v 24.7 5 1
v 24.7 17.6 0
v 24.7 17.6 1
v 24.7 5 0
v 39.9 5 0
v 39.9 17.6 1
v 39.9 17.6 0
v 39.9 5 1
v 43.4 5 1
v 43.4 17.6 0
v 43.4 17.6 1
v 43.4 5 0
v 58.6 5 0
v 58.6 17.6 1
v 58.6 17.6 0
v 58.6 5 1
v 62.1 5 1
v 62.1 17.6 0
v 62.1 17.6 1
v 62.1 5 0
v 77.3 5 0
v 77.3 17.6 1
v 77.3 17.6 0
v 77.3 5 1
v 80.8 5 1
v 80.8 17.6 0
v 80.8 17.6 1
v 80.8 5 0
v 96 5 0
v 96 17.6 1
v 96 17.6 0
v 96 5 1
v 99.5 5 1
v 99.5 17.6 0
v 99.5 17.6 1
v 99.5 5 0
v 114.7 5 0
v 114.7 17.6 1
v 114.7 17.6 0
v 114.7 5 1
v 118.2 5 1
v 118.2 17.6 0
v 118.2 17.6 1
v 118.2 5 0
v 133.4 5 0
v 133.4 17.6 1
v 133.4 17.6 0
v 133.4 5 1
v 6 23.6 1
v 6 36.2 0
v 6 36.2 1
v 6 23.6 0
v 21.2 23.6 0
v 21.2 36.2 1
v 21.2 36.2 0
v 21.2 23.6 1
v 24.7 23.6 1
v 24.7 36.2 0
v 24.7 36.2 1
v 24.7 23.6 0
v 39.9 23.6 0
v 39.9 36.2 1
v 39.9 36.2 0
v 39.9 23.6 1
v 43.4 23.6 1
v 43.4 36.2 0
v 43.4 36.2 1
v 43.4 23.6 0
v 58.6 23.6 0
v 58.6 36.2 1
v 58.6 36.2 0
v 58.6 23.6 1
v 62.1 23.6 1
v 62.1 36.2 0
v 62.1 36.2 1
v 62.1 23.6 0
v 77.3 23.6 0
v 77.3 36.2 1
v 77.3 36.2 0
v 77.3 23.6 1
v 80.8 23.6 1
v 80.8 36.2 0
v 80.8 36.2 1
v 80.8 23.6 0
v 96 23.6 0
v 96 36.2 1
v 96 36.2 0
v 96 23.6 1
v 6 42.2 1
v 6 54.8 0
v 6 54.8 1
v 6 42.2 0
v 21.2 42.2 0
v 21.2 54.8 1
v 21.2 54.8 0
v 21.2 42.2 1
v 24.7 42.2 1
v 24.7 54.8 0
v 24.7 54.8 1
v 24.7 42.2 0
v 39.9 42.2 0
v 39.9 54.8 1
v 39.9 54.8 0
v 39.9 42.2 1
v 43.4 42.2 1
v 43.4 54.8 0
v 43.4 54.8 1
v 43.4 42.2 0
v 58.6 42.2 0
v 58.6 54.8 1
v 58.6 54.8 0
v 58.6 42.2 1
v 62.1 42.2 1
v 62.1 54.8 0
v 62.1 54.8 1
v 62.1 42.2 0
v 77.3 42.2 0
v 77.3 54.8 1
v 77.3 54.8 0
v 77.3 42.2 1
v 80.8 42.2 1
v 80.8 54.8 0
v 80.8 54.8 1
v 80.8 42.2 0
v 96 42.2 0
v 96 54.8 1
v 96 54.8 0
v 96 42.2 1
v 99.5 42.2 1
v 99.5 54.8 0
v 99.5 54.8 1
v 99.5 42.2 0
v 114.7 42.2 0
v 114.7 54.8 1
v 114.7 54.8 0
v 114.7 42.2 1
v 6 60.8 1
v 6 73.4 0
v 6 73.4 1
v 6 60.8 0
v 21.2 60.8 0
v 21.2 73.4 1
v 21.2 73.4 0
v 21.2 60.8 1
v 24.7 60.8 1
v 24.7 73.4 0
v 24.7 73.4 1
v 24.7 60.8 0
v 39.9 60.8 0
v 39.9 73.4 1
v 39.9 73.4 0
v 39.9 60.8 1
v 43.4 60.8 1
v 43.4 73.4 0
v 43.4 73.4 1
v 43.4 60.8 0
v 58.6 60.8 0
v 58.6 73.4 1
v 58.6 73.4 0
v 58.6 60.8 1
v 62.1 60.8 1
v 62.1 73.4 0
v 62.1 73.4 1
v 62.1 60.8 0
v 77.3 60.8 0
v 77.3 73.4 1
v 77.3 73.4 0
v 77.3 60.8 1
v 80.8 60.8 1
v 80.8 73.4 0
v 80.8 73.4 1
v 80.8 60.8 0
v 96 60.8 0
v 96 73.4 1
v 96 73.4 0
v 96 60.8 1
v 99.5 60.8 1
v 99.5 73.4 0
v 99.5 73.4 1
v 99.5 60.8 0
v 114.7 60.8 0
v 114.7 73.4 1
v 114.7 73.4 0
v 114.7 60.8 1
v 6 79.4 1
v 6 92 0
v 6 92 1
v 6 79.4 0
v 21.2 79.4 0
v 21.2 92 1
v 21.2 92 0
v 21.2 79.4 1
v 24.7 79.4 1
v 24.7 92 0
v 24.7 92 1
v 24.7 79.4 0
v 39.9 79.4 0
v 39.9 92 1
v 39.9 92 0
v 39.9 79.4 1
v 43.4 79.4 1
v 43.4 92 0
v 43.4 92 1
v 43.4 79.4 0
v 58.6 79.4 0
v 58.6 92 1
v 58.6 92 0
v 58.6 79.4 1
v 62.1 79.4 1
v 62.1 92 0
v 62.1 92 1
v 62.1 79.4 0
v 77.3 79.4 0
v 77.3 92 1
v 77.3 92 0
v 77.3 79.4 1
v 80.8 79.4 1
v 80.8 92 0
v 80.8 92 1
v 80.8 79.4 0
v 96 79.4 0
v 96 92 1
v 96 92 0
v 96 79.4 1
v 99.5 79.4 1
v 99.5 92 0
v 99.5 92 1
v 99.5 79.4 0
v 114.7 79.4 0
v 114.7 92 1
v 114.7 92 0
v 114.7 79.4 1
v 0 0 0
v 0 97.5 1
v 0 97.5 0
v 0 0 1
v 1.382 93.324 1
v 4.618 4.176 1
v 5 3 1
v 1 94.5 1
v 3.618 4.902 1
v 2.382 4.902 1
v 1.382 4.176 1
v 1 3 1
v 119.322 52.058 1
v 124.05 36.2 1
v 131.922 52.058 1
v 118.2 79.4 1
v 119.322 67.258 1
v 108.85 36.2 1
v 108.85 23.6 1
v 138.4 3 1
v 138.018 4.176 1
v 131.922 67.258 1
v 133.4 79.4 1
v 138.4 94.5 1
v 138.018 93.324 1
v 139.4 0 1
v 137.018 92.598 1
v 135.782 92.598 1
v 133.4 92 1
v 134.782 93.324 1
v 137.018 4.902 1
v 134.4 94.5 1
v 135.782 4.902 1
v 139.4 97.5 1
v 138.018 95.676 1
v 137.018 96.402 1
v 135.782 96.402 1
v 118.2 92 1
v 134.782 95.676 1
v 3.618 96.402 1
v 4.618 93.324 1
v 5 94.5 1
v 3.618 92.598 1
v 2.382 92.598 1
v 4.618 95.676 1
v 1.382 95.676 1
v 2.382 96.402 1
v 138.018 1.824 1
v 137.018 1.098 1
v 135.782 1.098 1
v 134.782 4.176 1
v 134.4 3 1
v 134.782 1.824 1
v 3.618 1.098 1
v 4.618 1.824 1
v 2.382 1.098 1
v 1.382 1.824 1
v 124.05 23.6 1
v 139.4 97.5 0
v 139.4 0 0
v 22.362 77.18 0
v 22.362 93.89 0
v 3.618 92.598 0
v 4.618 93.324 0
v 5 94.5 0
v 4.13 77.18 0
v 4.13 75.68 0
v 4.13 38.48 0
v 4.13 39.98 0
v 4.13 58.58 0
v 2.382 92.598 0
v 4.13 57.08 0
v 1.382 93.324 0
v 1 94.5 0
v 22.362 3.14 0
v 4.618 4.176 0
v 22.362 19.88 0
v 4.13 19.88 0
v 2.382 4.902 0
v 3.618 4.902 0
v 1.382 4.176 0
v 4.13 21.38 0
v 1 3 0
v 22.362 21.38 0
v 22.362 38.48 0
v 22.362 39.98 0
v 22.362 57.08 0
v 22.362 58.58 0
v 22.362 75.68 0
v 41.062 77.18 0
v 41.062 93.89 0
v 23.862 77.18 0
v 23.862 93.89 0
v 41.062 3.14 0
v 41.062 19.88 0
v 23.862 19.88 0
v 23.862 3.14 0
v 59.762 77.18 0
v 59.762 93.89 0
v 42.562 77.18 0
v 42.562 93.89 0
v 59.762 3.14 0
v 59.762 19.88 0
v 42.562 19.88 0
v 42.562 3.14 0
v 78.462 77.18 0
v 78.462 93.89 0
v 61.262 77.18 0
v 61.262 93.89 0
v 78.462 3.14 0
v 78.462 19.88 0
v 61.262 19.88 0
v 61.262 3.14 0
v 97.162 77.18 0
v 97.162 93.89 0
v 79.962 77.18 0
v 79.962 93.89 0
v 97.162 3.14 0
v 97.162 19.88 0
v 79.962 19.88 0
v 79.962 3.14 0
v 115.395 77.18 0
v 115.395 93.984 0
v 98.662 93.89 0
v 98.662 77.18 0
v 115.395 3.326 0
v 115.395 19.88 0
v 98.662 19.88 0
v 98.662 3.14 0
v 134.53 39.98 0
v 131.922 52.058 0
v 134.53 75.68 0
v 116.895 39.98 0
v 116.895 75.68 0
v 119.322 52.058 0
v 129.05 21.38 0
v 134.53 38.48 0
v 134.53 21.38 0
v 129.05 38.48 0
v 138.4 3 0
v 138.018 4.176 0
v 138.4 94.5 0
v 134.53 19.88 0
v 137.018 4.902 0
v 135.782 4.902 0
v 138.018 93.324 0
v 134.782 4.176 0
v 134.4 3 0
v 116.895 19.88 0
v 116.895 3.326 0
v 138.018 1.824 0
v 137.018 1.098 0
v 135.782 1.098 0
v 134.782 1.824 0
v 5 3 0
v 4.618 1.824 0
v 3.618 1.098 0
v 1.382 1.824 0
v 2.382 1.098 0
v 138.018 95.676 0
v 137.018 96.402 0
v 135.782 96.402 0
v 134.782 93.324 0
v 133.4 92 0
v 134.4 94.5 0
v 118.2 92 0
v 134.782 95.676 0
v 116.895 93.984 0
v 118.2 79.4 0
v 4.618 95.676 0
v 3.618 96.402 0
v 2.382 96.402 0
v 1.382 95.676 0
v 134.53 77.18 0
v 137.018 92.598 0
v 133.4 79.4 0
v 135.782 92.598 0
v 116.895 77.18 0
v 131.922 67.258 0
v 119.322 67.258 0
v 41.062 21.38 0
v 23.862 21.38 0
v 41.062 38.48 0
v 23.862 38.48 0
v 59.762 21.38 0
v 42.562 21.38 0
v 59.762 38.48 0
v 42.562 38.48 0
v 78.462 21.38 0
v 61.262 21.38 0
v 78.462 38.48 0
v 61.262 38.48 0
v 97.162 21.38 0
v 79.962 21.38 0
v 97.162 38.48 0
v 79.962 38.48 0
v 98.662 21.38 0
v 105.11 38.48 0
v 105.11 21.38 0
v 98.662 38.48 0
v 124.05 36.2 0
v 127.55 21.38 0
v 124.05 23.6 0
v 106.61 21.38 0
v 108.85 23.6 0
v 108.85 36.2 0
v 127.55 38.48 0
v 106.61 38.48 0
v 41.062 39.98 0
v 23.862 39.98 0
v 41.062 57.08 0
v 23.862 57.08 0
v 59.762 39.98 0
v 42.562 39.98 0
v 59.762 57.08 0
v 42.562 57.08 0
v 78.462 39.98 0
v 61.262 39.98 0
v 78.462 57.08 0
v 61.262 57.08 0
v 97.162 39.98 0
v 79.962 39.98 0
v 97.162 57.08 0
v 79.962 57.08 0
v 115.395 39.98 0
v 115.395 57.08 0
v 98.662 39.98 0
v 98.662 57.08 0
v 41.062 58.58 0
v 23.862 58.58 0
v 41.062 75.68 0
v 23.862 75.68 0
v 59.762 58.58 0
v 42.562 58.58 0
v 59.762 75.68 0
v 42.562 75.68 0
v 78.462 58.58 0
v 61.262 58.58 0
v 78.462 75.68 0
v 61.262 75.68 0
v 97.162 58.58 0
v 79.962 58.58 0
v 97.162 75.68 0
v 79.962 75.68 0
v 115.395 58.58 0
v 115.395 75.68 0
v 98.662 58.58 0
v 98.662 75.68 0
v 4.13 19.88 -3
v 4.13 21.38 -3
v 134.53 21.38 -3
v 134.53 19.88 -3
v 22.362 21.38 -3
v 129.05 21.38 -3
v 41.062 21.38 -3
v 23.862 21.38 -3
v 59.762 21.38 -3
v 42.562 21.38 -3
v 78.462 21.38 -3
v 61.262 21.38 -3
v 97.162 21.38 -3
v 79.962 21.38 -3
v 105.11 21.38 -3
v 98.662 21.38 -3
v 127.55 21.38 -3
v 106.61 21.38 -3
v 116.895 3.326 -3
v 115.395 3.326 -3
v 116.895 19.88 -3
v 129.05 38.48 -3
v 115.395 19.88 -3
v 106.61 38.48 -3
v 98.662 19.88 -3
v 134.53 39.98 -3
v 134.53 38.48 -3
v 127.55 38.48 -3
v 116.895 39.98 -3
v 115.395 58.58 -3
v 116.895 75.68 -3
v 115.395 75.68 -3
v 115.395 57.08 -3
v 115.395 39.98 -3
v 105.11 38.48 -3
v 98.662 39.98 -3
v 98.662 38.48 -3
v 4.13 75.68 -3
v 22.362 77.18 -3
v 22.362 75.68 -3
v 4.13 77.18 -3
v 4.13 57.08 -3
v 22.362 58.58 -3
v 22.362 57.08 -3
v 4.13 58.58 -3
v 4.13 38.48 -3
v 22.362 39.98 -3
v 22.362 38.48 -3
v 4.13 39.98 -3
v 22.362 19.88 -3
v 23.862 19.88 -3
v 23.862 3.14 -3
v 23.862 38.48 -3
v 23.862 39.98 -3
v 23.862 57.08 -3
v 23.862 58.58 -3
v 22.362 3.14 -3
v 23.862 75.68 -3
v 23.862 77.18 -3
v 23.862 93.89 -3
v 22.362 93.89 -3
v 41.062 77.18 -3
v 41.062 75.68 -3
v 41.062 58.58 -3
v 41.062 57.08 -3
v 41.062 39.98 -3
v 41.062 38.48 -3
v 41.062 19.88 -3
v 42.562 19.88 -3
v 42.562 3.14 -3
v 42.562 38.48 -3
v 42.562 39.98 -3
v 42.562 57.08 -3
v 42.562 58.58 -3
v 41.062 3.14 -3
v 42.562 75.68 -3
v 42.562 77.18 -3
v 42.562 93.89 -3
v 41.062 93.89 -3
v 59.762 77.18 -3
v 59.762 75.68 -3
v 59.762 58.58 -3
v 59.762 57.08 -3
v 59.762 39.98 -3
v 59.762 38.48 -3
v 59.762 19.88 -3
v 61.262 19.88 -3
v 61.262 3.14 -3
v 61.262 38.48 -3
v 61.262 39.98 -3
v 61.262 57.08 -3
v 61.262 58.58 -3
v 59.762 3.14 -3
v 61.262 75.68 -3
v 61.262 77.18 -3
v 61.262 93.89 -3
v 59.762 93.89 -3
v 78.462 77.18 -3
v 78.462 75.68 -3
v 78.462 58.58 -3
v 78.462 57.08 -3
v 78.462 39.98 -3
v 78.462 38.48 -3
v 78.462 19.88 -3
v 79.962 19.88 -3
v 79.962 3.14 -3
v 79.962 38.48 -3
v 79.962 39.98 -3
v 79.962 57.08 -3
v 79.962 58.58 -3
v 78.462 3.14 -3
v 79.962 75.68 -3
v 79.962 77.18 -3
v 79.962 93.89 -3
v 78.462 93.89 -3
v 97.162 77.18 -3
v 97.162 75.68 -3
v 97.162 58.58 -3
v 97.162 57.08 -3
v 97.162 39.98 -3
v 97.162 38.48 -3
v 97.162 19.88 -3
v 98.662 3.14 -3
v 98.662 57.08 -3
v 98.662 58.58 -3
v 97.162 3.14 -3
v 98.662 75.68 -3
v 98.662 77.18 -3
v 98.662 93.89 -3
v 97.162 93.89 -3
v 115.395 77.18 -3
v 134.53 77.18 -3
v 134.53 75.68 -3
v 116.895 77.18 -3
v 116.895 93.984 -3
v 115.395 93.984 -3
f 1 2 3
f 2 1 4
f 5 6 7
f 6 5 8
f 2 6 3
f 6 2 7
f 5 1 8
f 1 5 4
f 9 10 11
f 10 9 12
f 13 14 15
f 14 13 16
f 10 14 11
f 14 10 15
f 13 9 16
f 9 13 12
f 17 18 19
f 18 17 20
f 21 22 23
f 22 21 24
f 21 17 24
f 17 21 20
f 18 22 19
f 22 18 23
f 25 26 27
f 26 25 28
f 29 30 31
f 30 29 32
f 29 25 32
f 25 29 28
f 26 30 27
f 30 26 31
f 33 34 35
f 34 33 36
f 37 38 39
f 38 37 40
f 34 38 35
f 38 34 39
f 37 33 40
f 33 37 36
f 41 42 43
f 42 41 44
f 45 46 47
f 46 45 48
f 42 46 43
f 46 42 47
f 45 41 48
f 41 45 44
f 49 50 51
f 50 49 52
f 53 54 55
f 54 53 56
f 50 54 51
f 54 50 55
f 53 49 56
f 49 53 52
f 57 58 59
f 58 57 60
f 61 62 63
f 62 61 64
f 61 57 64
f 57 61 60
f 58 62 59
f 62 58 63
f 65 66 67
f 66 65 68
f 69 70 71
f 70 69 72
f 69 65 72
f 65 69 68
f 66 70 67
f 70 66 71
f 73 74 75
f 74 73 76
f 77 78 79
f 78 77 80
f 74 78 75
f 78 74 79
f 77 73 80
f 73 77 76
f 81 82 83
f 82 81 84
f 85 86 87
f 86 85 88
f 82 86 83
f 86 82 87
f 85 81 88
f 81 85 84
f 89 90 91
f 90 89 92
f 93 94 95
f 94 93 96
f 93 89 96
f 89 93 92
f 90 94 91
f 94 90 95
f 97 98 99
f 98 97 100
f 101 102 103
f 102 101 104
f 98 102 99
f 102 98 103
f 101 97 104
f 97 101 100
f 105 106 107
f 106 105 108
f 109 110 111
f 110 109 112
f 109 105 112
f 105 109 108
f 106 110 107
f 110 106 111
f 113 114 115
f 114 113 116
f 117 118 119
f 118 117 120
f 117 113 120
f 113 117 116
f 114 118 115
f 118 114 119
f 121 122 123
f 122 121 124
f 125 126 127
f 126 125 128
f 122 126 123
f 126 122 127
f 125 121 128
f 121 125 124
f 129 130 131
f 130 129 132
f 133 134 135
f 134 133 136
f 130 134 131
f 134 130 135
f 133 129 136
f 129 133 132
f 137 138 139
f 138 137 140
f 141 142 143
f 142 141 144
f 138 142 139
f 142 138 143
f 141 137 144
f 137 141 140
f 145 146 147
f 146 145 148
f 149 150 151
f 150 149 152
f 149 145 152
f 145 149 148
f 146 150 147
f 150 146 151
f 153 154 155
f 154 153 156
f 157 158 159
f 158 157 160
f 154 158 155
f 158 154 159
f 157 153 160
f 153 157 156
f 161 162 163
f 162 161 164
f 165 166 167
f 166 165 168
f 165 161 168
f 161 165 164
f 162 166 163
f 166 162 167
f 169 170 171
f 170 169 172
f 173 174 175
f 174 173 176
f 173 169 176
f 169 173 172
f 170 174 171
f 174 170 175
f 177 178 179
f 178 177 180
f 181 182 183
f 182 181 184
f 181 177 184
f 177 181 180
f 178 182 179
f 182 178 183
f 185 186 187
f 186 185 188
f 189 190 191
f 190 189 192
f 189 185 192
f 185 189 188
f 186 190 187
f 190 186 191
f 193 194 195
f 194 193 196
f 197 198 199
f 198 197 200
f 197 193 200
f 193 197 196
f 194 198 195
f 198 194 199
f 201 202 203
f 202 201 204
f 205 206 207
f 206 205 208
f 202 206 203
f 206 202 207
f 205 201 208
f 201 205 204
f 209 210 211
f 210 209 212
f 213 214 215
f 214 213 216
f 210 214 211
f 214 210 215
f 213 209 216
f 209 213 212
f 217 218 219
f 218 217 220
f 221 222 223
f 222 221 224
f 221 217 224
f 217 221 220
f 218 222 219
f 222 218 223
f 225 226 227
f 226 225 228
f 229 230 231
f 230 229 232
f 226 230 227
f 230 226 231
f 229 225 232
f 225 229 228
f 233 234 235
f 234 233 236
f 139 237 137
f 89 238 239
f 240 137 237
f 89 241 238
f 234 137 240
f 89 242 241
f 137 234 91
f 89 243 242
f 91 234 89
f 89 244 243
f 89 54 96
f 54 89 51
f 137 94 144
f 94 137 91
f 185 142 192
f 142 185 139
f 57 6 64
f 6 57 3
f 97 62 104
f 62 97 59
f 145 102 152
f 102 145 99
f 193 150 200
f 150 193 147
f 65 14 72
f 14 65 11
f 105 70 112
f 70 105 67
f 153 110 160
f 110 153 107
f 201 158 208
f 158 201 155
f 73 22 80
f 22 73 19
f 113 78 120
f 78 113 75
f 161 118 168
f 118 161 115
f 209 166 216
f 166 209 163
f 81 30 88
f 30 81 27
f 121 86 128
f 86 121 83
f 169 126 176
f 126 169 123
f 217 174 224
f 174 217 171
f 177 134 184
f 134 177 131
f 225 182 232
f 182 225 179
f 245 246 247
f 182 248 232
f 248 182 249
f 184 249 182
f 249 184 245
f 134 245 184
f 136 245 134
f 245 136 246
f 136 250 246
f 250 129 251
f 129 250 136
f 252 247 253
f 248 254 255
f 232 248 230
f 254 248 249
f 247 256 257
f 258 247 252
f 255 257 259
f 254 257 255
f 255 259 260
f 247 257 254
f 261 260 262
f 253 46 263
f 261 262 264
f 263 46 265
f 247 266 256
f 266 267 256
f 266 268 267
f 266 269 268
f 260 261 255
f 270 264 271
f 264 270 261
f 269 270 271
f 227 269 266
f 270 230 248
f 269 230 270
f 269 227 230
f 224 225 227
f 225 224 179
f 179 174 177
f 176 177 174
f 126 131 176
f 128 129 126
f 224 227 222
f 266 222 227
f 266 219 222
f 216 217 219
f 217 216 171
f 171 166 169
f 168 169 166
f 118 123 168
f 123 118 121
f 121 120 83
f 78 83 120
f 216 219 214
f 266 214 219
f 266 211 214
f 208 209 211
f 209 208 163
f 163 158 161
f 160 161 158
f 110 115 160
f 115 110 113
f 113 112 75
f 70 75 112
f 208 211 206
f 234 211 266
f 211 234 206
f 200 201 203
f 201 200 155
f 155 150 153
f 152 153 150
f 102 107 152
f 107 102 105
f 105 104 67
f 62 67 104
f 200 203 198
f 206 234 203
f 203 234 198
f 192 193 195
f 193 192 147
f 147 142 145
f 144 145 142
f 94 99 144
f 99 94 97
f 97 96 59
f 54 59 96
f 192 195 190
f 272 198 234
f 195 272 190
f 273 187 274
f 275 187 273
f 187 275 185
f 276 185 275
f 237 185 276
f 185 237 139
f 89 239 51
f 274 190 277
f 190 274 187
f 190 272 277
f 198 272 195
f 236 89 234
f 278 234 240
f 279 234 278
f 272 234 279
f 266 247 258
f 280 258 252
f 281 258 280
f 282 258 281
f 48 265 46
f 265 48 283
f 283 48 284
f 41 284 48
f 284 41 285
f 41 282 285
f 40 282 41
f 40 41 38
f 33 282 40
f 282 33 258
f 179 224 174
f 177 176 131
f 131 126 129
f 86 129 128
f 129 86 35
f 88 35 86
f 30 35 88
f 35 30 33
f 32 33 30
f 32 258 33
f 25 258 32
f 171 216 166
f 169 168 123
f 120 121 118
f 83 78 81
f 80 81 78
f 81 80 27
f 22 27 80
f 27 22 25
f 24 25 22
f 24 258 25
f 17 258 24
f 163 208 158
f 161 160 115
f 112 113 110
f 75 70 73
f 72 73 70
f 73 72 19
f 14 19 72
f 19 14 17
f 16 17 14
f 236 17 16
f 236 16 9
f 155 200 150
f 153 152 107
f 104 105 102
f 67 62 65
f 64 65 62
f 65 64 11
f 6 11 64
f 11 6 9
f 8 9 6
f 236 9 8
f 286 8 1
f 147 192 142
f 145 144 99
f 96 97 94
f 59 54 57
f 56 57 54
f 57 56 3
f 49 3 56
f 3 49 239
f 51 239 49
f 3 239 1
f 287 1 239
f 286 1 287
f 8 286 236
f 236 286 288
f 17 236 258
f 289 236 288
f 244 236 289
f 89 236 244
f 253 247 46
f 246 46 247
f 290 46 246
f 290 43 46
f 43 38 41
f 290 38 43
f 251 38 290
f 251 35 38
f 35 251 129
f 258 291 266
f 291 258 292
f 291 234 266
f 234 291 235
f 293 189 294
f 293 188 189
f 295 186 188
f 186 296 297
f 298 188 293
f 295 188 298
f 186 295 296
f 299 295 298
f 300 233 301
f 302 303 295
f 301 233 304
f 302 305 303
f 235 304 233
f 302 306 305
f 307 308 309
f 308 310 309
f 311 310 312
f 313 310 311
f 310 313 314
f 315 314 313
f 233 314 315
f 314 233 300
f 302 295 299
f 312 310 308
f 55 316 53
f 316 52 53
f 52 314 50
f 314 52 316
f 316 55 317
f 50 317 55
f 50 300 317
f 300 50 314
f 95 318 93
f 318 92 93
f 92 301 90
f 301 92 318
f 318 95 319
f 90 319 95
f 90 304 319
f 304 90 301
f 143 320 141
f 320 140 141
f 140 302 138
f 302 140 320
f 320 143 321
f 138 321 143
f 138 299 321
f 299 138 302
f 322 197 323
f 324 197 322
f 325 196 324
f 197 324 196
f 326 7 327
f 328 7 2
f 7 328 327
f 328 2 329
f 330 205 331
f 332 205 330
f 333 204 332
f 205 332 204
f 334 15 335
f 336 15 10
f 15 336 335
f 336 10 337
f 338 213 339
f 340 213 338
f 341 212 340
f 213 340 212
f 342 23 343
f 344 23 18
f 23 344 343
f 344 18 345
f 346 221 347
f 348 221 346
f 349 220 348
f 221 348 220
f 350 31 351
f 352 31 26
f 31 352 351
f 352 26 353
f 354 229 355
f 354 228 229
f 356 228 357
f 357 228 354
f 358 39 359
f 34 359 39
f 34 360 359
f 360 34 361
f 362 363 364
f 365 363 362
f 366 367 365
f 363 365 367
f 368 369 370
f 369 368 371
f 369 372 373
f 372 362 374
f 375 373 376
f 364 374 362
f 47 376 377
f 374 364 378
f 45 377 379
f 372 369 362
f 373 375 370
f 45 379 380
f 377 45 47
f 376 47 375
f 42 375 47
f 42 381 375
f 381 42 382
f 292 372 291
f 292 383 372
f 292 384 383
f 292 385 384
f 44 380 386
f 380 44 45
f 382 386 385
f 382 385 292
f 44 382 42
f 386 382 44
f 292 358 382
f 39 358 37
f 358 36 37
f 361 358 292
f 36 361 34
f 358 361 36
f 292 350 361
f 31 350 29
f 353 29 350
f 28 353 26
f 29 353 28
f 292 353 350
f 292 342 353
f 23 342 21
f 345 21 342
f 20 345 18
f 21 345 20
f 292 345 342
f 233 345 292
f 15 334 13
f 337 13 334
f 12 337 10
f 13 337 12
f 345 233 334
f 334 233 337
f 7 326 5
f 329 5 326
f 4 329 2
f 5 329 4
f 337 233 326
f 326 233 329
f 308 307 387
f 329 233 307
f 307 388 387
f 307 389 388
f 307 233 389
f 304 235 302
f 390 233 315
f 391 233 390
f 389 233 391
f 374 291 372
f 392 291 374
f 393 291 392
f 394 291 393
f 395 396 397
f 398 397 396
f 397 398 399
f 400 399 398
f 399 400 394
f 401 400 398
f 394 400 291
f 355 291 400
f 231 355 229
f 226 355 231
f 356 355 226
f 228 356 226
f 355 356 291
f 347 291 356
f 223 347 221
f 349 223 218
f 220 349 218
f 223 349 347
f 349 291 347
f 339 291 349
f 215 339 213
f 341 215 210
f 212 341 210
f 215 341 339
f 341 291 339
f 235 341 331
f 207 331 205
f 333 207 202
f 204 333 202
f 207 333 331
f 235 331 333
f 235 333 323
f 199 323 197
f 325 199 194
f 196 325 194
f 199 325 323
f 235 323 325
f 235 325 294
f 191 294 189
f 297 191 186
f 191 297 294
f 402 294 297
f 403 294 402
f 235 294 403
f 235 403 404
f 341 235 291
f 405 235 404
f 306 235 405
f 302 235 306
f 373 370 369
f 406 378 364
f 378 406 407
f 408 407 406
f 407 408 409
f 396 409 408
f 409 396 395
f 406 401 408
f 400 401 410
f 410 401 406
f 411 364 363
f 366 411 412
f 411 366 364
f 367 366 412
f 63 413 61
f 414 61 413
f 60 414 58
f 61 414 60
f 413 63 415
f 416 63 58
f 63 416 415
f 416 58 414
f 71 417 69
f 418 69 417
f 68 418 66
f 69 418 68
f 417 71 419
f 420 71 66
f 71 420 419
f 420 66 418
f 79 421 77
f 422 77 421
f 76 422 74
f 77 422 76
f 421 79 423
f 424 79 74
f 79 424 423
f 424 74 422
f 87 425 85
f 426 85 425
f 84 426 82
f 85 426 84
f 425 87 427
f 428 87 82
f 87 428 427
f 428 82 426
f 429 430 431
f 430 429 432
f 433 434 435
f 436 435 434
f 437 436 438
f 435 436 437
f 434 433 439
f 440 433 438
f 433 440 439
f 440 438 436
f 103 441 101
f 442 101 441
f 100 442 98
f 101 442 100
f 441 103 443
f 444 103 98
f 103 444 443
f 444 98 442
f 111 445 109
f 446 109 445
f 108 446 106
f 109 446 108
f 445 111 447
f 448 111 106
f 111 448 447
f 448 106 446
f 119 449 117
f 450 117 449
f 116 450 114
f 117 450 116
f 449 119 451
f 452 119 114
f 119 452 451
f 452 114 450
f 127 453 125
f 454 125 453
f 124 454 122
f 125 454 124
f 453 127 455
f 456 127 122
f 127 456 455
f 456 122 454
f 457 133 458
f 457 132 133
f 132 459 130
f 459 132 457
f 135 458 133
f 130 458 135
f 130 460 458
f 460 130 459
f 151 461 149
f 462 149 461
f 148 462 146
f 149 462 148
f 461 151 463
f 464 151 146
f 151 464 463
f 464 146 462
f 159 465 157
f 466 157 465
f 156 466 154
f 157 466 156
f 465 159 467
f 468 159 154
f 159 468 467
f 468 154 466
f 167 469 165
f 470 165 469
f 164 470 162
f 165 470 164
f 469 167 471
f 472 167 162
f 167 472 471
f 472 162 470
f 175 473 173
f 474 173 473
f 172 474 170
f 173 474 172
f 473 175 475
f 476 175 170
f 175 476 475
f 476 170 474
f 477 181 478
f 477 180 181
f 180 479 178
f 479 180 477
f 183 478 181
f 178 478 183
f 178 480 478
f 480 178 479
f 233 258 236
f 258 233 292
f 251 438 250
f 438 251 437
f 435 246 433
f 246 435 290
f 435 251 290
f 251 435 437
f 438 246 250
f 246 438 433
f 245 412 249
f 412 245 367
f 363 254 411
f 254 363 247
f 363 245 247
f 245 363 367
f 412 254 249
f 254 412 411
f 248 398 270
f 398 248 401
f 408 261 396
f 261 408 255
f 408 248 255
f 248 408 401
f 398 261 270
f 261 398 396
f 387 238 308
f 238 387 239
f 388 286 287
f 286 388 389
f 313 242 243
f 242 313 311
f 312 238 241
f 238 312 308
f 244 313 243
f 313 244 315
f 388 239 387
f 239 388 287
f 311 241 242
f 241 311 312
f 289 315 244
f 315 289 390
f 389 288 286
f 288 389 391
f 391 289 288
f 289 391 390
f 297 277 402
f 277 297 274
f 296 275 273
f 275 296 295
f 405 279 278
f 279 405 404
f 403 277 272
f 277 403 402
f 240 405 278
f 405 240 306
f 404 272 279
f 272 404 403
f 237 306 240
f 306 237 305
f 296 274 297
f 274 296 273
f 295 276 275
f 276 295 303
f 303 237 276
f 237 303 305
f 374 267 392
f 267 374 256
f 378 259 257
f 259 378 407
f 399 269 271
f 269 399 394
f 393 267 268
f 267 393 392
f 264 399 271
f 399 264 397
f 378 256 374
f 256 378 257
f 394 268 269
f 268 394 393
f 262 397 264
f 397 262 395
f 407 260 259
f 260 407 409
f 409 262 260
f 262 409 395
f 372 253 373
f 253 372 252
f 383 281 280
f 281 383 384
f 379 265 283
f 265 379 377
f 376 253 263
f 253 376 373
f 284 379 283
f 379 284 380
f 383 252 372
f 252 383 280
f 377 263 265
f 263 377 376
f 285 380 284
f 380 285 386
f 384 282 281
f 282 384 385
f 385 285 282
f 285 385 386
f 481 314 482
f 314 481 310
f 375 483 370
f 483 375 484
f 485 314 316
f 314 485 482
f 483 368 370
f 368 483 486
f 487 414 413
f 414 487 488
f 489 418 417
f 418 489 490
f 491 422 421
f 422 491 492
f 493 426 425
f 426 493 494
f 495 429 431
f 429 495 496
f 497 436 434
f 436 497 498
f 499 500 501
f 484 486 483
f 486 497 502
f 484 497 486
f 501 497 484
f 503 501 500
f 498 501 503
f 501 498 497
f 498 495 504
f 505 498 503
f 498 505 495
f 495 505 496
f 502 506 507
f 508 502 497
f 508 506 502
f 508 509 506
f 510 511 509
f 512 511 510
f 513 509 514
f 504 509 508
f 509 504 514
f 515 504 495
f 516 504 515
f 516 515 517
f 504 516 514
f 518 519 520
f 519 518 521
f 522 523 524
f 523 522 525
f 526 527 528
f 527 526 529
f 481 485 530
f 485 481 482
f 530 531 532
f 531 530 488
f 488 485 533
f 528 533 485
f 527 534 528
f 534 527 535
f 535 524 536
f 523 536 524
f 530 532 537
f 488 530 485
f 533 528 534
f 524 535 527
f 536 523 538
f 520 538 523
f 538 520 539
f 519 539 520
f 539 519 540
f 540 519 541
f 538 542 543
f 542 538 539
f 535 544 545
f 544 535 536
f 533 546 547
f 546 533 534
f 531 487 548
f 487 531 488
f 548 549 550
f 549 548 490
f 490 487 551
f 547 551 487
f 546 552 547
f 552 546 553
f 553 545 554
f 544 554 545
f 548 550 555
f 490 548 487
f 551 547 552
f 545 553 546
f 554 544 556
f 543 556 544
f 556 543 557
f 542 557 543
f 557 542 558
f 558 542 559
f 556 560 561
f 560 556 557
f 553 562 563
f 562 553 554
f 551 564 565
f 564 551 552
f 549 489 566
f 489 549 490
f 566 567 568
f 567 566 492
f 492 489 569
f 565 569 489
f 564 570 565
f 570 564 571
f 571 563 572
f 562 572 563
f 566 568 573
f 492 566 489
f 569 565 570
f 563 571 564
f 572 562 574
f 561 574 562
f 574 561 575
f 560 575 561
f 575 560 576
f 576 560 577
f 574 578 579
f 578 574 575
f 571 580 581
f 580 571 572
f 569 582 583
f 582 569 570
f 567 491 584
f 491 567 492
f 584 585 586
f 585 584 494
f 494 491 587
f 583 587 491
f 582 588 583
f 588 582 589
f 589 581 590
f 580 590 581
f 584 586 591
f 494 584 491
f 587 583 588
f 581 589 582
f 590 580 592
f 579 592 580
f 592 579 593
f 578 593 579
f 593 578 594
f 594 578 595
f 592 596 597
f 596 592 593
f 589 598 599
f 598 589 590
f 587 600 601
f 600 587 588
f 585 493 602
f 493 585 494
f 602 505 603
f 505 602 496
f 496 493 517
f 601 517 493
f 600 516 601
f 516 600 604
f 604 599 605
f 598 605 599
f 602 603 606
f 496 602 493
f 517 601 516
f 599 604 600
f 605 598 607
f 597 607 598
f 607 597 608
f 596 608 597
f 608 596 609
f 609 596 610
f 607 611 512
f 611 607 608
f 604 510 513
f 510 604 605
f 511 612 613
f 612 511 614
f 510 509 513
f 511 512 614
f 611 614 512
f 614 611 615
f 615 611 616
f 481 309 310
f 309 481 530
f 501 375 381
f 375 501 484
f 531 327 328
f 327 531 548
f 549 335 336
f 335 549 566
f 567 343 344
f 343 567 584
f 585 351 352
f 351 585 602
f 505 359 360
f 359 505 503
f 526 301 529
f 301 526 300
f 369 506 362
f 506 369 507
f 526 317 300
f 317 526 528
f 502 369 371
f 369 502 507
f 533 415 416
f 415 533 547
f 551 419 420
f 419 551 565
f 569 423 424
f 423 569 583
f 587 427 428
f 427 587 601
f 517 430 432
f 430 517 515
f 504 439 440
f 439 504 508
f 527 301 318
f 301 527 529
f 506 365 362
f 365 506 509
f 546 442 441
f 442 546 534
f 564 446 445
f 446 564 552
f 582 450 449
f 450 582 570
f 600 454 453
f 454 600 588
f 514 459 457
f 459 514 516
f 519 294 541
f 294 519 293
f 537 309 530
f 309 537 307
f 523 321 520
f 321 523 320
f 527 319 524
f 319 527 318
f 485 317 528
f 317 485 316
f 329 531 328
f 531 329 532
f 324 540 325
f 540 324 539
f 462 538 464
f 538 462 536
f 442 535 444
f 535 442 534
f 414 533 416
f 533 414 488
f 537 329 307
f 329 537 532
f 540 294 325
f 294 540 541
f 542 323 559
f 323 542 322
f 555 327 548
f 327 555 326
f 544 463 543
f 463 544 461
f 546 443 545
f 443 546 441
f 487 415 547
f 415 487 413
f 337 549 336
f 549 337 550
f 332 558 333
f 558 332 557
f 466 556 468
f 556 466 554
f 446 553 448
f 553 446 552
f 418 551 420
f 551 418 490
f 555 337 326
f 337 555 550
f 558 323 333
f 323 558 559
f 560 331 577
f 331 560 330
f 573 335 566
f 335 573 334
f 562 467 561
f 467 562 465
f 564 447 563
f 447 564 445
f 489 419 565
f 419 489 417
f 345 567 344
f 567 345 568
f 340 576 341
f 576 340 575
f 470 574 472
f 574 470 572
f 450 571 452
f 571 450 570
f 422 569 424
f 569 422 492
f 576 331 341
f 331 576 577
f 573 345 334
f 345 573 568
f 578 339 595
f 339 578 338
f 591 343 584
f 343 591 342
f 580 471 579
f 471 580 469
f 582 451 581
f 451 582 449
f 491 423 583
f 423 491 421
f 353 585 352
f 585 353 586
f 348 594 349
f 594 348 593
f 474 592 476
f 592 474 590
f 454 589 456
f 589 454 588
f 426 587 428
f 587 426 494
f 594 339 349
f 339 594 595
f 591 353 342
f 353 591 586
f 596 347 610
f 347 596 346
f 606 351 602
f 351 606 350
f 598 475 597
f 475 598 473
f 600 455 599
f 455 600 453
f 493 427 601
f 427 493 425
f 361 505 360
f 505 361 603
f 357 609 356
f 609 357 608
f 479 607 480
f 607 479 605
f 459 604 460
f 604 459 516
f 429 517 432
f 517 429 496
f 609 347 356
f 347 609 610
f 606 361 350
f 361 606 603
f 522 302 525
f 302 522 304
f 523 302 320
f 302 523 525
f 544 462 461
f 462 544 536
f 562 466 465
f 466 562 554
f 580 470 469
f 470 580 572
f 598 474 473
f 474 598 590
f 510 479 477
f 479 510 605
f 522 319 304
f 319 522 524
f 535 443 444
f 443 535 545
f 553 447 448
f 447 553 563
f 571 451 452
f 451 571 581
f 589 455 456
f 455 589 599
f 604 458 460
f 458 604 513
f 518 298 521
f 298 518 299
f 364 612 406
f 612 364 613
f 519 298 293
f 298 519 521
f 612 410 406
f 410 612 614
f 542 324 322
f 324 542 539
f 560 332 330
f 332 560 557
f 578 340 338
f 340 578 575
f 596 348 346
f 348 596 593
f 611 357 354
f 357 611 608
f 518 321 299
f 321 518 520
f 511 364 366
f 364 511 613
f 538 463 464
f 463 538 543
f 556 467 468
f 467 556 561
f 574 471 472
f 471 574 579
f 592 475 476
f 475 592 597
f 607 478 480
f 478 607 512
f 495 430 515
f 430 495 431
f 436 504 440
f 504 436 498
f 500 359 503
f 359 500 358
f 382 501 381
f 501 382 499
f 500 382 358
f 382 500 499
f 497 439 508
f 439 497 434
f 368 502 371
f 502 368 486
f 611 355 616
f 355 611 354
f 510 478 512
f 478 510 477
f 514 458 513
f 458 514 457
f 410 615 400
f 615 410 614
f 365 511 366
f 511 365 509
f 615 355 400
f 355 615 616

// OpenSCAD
/* Module A v2
 * Fewer keys
 * Keycaps actually fit
 * Cross beams for support
 * Keys actally  fit, snuggly
 */
 
keyCols = 7;
keyRows = 5;
keyX = 15.2;
keyY = 12.6;
keySpace = 3.5;
vKeySpace=6;
edgeSpaceAddition = 4;
edgeSpace = (edgeSpaceAddition*2)-keySpace;
keyZ = -1;

supportH = 3.5;
supportW = 1.5;
supportZ = -3;

moduleX = (edgeSpace+edgeSpaceAddition)+(keySpace*keyCols)+keyX*(keyCols-1)+keyX;
moduleY = (edgeSpaceAddition*2-keySpace)+(vKeySpace*keyRows)+keyY*(keyRows-1)+keyY;
moduleZ = 1;

keySize = [keyX, keyY, moduleZ+2];

function position(x,y,z) = [edgeSpace+keySpace*x+keyX*(x-1)-(edgeSpaceAddition/2), edgeSpace-keySpace+(vKeySpace)*y+keyY*(y-1)-(edgeSpaceAddition/2), z];

module screwHole (x, y){
	translate([x,y,keyZ]) cylinder(h=moduleZ+2, r=2, $fn=10);
}

module keyHoles (yStart, yEnd, xStart, xEnd){
  for(y = [yStart:yEnd]){
    for(x = [xStart:xEnd]){
      translate(position(x,y,keyZ)) cube(keySize);
    }
  }
}

module hBeam (bStart, bEnd){
  for (b = [bStart:bEnd]){  
    color([0.5,0,0]){
      translate(position(0.9,b-0.2,supportZ)){  
        cube([moduleX-(edgeSpace*2),supportW,supportH]);
      }
    }
  }
}

module hBeam2 (xStart, xEnd, yStart, yEnd){
  for(y = [yStart:yEnd]){
    color([0.5,0,0]){
      translate(position((0.9*xStart),y-0.2,supportZ)){
        cube([(keyX*xEnd)-1.7,1.5,supportH]);
      }
    }
  }
}

module vBeam (bStart, bEnd){
  for (b = [bStart:bEnd]){  
    color([0.5,0,0]){
      translate(position(b-0.125,0.9,supportZ)){  
        cube([1.5,moduleY-(edgeSpace*1.5),supportH]);
      }
    }
  }
}

module vBeam2 (xStart, xEnd, yStart, yEnd){
  for (x = [xStart:xEnd]){  
      color([0.5,0,0]){
        translate(position(x,yStart,supportZ)){  
          cube([1.5,(keyY*yEnd)-1.7,supportH]);
        }
      }
    }
}

difference(){
  cube([moduleX,moduleY,moduleZ]);
  keyHoles(1,1,2,7);
  keyHoles(2,2,1,5);
  keyHoles(2,2,6.5,6.5);
  keyHoles(3,5,1,6);
  keyHoles(3.5,3.5,7,7);
  keyHoles(5,5,7,7);

  
  screwHole(3,3);
  screwHole(3,moduleY-3);
	screwHole(moduleX-3,moduleY-3);
	screwHole(moduleX-3,3);
}

hBeam(2, 3);
hBeam2(1, 7.5,4,4);
hBeam(5,5);

vBeam(2, 6);
vBeam2(6.3, 6.3, 1.8,1.7);
vBeam2(6.85, 6.85, 0.91,1.5);
vBeam2(7.5, 7.5, 1.8,1.7);
vBeam2(6.85, 6.85, 2.8,4.54);
